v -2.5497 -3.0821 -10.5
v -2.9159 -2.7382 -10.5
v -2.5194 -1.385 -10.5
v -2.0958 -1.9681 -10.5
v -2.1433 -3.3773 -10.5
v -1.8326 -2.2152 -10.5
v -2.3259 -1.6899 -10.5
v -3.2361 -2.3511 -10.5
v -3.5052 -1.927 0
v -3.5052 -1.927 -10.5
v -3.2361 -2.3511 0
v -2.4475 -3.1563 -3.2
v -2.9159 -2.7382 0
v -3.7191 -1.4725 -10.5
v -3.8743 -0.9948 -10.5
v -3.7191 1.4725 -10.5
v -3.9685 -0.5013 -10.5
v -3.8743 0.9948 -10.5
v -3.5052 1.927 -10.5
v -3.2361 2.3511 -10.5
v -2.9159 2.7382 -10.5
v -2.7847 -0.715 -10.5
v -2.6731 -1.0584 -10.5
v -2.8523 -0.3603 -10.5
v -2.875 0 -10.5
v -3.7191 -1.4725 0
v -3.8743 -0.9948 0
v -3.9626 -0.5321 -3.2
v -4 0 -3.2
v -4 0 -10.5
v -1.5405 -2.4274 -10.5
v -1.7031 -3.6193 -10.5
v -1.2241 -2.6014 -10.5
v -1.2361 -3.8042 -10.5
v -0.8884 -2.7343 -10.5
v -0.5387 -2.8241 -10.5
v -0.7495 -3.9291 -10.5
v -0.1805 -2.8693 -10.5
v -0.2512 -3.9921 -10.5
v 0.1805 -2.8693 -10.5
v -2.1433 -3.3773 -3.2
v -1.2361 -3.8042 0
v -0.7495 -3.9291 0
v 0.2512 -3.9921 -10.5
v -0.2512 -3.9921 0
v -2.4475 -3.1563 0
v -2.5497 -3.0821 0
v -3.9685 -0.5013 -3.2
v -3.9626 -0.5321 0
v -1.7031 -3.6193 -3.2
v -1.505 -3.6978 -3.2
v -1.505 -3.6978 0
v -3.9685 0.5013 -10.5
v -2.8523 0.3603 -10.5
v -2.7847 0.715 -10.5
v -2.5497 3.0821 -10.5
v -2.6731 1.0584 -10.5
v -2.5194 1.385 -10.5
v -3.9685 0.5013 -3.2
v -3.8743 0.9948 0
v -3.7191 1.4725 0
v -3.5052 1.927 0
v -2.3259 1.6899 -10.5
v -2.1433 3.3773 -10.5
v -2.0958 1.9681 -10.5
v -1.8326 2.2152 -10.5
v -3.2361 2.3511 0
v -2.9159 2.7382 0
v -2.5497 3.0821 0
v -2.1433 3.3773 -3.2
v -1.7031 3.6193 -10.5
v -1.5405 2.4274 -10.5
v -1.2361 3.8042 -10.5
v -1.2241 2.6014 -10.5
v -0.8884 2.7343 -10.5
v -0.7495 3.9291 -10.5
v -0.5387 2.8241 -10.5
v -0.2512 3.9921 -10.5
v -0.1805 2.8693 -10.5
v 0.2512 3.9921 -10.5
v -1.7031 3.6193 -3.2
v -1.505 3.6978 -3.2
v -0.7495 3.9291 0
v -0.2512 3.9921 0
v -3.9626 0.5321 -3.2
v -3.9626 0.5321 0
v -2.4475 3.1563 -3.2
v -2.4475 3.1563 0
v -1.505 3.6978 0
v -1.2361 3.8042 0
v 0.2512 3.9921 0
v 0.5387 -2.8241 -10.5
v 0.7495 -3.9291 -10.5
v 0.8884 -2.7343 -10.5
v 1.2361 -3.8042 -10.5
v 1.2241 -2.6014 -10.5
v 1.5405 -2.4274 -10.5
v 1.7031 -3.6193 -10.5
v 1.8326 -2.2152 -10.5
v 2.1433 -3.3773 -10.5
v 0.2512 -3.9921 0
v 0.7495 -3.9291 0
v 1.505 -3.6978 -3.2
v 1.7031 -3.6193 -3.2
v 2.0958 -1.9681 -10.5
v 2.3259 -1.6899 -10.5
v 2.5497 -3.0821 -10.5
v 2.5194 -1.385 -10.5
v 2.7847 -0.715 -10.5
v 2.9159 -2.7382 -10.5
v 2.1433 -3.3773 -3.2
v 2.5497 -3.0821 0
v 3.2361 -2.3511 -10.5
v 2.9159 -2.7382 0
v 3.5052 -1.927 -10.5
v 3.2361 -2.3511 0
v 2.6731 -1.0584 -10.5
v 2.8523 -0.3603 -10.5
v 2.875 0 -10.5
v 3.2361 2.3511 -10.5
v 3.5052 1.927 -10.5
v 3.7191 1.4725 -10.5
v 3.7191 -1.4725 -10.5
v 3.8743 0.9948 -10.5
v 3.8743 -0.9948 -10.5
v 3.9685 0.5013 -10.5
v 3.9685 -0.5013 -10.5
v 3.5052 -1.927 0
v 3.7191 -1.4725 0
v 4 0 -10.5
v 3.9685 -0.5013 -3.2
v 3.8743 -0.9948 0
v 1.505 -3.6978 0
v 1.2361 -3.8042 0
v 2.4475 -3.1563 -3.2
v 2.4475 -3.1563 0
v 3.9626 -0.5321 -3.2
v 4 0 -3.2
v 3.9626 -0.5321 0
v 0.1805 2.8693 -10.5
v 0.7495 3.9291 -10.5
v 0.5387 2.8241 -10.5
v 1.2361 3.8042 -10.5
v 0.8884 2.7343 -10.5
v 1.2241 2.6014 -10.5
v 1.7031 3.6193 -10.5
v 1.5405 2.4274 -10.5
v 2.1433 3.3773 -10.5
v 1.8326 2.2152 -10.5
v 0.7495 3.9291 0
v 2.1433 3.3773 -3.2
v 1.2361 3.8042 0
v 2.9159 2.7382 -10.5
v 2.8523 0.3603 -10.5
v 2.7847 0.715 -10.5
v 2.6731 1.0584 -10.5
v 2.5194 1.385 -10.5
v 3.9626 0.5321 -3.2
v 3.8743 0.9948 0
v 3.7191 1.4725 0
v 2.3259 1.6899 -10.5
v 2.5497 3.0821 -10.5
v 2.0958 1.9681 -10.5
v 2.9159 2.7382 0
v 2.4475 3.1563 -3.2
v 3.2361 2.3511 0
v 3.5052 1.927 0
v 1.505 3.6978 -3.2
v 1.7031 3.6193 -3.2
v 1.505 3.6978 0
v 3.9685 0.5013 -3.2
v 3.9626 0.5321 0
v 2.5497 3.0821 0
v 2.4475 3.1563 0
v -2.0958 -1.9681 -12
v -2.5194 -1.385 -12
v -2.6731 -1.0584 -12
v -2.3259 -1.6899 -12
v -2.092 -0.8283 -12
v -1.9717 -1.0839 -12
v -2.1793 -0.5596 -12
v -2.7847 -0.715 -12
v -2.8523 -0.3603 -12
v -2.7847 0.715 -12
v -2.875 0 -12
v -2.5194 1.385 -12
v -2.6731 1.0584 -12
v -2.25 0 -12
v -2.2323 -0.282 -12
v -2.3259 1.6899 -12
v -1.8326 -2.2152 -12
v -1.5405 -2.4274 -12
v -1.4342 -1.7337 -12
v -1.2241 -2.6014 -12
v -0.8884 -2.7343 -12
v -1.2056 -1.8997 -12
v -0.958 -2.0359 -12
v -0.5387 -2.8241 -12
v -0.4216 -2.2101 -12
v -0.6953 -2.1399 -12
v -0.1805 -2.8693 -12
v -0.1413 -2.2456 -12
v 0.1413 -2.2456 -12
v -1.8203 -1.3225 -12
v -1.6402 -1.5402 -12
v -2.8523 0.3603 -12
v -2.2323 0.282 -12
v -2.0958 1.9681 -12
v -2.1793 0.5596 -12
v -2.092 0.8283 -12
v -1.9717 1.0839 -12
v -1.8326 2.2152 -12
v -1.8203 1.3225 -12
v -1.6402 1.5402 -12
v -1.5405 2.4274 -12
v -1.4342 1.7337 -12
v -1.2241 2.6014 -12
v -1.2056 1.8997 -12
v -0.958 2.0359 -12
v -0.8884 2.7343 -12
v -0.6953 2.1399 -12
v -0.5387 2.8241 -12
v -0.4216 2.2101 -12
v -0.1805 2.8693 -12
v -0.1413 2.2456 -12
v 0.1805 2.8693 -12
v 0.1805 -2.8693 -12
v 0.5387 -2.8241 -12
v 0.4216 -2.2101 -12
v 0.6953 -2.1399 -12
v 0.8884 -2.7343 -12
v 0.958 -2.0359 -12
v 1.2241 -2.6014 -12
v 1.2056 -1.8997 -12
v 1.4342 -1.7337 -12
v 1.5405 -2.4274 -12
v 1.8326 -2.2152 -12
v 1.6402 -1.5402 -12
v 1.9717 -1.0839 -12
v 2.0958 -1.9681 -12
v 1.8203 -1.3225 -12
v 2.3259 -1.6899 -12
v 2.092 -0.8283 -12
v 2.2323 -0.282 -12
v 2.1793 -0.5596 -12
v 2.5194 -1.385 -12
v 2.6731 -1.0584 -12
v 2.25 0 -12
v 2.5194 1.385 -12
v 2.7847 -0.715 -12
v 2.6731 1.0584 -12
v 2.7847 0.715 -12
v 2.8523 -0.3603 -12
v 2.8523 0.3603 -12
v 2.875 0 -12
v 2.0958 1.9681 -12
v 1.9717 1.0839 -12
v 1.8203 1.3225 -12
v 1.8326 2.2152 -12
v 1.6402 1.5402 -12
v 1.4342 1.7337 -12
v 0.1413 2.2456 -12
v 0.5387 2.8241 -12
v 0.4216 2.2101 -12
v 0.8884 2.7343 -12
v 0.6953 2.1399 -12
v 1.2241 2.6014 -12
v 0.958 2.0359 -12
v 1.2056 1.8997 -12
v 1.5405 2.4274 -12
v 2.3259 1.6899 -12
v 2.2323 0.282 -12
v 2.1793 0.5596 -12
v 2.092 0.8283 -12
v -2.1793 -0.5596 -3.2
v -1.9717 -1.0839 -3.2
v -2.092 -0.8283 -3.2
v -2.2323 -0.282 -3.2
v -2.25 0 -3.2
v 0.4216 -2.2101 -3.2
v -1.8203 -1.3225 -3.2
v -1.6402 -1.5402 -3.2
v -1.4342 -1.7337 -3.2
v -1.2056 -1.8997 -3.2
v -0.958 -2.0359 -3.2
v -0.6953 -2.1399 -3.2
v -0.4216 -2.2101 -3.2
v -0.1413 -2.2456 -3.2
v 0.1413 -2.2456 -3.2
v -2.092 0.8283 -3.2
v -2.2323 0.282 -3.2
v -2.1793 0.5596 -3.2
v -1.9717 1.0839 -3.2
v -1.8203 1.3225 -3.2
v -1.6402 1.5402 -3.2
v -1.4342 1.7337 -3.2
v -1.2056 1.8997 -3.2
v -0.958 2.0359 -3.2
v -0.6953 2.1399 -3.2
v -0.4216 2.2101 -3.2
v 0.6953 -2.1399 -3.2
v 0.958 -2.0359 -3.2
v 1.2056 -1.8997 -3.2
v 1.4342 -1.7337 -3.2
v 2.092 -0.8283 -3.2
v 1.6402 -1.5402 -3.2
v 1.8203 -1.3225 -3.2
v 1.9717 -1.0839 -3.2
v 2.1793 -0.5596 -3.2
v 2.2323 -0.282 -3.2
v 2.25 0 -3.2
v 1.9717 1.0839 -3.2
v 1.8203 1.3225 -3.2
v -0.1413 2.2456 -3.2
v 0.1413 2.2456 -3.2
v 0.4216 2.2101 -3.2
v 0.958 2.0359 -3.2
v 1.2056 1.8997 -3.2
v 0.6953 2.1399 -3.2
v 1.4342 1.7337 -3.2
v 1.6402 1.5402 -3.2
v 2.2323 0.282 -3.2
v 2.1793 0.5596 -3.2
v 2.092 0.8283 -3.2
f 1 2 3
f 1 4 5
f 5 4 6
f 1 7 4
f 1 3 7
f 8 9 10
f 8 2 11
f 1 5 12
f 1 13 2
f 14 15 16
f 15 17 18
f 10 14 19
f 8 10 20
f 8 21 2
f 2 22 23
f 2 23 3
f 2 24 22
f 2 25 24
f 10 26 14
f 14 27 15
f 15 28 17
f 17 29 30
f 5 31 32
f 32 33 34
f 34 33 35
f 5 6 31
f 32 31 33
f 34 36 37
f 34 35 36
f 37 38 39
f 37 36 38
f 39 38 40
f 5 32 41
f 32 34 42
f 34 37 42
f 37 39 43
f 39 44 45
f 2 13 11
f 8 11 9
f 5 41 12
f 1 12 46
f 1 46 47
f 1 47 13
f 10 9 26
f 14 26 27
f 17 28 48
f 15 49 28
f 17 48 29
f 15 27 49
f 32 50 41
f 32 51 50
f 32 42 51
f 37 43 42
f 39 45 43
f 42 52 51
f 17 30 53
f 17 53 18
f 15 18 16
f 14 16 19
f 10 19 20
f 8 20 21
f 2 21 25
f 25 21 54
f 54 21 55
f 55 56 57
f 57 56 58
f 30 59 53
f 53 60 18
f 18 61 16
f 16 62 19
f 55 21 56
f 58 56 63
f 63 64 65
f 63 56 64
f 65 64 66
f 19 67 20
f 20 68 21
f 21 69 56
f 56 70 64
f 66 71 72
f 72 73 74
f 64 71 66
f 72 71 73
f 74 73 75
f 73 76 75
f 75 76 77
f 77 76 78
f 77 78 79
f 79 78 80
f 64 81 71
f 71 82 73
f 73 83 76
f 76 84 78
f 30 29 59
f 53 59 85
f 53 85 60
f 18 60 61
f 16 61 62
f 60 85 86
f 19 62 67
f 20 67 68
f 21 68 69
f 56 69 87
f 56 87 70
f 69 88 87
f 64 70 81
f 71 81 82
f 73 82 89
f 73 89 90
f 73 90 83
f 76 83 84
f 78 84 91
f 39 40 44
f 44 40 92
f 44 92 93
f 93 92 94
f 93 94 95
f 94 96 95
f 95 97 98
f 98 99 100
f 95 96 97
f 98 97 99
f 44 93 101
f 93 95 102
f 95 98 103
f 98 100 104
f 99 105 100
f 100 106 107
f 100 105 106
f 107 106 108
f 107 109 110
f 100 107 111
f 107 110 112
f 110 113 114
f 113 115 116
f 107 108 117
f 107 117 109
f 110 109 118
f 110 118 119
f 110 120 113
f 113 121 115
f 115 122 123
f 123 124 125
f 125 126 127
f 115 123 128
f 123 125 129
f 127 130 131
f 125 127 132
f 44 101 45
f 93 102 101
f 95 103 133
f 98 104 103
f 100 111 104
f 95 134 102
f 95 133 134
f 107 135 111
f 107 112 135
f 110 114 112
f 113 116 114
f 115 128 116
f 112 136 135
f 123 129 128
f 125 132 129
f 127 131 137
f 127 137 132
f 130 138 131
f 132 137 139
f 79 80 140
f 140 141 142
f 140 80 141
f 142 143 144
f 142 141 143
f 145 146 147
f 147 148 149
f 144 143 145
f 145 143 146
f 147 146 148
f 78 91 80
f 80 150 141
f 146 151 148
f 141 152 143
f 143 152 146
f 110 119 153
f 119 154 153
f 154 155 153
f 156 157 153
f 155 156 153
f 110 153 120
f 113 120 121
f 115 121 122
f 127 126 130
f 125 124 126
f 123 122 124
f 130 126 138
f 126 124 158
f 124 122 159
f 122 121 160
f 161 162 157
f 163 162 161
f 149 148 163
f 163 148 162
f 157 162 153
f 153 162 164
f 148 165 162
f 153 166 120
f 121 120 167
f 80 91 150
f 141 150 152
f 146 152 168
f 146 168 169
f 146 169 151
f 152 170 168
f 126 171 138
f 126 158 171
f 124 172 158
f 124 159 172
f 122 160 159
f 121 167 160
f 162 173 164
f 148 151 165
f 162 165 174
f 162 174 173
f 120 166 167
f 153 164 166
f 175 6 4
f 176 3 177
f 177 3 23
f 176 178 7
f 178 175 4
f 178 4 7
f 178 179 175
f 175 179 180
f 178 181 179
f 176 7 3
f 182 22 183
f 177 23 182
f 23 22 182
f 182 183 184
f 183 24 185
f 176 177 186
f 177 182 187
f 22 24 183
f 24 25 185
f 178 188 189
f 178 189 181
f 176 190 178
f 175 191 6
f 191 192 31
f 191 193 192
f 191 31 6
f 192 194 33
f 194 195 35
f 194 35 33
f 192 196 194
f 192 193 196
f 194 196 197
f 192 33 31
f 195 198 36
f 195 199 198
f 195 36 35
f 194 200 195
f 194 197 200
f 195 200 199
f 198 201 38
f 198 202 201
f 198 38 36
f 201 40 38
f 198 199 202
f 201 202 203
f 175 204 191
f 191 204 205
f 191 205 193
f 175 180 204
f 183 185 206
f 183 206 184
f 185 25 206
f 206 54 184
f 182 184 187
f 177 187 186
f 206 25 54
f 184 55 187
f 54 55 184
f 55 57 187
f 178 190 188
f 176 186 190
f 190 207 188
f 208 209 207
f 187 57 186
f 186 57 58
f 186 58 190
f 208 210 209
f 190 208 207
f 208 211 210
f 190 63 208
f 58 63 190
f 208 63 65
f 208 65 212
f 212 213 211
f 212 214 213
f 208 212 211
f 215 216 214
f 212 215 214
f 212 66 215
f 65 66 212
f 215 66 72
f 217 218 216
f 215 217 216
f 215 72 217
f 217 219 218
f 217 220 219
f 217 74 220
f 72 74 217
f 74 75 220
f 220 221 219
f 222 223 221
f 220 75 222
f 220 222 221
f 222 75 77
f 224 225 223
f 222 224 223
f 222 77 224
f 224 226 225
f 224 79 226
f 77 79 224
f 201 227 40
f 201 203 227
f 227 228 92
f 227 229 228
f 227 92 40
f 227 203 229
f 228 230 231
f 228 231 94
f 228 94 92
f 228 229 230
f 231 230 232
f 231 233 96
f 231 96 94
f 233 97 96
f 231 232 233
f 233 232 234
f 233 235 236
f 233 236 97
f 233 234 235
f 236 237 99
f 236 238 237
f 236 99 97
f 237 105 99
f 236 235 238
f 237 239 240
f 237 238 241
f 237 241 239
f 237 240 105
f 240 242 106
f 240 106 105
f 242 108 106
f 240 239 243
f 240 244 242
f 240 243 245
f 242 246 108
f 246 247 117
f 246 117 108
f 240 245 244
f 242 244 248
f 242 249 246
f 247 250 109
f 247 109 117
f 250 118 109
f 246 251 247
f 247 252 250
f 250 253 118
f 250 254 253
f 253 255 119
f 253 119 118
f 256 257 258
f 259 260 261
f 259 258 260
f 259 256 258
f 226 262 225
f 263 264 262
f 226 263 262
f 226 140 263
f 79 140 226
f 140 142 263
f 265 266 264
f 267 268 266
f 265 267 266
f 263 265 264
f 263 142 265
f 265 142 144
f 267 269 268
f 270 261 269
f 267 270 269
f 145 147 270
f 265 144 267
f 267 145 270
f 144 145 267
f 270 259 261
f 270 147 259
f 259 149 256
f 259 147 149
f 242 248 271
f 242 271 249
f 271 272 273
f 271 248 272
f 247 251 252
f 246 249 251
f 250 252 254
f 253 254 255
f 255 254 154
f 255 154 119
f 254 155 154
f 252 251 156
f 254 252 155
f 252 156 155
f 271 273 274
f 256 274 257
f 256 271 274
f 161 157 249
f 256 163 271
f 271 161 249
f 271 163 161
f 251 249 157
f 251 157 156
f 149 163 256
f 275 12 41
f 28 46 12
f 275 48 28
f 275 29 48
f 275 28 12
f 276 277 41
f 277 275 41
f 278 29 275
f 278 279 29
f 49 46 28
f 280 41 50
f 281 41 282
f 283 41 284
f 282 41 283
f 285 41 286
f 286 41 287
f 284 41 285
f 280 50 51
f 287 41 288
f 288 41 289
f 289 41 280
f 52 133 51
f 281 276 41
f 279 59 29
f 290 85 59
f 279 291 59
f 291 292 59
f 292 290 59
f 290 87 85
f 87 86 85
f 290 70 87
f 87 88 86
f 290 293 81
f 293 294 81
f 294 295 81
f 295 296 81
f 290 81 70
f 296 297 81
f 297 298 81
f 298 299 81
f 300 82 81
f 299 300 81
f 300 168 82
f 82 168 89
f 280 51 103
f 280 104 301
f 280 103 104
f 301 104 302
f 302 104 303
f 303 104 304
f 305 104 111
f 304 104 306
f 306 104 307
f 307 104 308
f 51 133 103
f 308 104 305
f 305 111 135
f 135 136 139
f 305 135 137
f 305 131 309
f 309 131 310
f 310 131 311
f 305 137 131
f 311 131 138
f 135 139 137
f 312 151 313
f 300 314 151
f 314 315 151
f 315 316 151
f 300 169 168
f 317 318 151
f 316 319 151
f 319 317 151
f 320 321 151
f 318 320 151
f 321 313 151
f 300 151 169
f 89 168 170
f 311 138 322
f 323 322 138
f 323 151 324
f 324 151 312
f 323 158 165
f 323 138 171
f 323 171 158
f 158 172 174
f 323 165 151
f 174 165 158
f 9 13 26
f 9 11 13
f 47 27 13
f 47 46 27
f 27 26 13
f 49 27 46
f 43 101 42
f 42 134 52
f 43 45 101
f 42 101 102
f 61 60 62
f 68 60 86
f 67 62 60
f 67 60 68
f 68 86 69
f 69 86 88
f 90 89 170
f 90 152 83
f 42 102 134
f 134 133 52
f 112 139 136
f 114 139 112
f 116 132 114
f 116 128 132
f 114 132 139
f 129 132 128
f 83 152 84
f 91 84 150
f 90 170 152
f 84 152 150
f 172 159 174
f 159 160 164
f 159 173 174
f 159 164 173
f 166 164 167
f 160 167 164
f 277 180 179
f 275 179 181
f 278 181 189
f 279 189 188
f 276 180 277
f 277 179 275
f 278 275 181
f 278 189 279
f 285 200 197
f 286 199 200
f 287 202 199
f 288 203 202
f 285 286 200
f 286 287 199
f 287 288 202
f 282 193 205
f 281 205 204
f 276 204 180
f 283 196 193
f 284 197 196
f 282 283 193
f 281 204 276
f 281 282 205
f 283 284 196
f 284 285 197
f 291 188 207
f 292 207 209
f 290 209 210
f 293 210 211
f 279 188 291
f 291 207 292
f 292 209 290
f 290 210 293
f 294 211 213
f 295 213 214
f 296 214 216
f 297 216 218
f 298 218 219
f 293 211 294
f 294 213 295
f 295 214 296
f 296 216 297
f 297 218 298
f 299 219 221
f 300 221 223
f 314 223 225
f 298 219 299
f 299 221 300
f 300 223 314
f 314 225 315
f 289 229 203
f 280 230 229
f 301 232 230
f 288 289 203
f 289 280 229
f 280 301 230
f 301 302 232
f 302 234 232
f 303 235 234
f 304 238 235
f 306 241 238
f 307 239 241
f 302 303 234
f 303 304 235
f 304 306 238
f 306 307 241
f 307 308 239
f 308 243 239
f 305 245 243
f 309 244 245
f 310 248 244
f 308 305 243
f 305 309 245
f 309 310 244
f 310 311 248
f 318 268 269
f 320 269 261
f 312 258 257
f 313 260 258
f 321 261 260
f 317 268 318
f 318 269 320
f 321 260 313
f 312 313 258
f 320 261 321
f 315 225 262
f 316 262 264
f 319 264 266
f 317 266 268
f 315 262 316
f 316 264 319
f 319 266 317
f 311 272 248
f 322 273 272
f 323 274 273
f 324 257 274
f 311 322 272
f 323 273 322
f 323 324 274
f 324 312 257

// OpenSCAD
$fn = 50;

difference() {
	union() {
		translate(v = [0, 0, -10.5]) {
			cylinder(h = 13.5, r = 4.0);
		}
		#translate(v = [0, 0, -12.0]) {
			cylinder(h = 12, r = 2.875);
		}
	}
	union() {
		translate(v = [0, 0, 0]) {
			rotate(a = [0, 0, 0]) {
				difference() {
					union() {
						translate(v = [0, 0, -3.2]) {
							linear_extrude(height = 3.2) {
								polygon(points = [[4.2698, 0.0], [2.1349000000000005, 3.697755269078796], [-2.134899999999999, 3.6977552690787965], [-4.2698, 5.228996902999369e-16], [-2.134900000000002, -3.6977552690787956], [2.1348999999999974, -3.697755269078798]]);
							}
						}
					}
					union();
				}
			}
		}
		#cylinder(h = 3, r = 5.0);
		#translate(v = [0, 0, -100.0]) {
			cylinder(h = 200, r = 2.25);
		}
	}
}
